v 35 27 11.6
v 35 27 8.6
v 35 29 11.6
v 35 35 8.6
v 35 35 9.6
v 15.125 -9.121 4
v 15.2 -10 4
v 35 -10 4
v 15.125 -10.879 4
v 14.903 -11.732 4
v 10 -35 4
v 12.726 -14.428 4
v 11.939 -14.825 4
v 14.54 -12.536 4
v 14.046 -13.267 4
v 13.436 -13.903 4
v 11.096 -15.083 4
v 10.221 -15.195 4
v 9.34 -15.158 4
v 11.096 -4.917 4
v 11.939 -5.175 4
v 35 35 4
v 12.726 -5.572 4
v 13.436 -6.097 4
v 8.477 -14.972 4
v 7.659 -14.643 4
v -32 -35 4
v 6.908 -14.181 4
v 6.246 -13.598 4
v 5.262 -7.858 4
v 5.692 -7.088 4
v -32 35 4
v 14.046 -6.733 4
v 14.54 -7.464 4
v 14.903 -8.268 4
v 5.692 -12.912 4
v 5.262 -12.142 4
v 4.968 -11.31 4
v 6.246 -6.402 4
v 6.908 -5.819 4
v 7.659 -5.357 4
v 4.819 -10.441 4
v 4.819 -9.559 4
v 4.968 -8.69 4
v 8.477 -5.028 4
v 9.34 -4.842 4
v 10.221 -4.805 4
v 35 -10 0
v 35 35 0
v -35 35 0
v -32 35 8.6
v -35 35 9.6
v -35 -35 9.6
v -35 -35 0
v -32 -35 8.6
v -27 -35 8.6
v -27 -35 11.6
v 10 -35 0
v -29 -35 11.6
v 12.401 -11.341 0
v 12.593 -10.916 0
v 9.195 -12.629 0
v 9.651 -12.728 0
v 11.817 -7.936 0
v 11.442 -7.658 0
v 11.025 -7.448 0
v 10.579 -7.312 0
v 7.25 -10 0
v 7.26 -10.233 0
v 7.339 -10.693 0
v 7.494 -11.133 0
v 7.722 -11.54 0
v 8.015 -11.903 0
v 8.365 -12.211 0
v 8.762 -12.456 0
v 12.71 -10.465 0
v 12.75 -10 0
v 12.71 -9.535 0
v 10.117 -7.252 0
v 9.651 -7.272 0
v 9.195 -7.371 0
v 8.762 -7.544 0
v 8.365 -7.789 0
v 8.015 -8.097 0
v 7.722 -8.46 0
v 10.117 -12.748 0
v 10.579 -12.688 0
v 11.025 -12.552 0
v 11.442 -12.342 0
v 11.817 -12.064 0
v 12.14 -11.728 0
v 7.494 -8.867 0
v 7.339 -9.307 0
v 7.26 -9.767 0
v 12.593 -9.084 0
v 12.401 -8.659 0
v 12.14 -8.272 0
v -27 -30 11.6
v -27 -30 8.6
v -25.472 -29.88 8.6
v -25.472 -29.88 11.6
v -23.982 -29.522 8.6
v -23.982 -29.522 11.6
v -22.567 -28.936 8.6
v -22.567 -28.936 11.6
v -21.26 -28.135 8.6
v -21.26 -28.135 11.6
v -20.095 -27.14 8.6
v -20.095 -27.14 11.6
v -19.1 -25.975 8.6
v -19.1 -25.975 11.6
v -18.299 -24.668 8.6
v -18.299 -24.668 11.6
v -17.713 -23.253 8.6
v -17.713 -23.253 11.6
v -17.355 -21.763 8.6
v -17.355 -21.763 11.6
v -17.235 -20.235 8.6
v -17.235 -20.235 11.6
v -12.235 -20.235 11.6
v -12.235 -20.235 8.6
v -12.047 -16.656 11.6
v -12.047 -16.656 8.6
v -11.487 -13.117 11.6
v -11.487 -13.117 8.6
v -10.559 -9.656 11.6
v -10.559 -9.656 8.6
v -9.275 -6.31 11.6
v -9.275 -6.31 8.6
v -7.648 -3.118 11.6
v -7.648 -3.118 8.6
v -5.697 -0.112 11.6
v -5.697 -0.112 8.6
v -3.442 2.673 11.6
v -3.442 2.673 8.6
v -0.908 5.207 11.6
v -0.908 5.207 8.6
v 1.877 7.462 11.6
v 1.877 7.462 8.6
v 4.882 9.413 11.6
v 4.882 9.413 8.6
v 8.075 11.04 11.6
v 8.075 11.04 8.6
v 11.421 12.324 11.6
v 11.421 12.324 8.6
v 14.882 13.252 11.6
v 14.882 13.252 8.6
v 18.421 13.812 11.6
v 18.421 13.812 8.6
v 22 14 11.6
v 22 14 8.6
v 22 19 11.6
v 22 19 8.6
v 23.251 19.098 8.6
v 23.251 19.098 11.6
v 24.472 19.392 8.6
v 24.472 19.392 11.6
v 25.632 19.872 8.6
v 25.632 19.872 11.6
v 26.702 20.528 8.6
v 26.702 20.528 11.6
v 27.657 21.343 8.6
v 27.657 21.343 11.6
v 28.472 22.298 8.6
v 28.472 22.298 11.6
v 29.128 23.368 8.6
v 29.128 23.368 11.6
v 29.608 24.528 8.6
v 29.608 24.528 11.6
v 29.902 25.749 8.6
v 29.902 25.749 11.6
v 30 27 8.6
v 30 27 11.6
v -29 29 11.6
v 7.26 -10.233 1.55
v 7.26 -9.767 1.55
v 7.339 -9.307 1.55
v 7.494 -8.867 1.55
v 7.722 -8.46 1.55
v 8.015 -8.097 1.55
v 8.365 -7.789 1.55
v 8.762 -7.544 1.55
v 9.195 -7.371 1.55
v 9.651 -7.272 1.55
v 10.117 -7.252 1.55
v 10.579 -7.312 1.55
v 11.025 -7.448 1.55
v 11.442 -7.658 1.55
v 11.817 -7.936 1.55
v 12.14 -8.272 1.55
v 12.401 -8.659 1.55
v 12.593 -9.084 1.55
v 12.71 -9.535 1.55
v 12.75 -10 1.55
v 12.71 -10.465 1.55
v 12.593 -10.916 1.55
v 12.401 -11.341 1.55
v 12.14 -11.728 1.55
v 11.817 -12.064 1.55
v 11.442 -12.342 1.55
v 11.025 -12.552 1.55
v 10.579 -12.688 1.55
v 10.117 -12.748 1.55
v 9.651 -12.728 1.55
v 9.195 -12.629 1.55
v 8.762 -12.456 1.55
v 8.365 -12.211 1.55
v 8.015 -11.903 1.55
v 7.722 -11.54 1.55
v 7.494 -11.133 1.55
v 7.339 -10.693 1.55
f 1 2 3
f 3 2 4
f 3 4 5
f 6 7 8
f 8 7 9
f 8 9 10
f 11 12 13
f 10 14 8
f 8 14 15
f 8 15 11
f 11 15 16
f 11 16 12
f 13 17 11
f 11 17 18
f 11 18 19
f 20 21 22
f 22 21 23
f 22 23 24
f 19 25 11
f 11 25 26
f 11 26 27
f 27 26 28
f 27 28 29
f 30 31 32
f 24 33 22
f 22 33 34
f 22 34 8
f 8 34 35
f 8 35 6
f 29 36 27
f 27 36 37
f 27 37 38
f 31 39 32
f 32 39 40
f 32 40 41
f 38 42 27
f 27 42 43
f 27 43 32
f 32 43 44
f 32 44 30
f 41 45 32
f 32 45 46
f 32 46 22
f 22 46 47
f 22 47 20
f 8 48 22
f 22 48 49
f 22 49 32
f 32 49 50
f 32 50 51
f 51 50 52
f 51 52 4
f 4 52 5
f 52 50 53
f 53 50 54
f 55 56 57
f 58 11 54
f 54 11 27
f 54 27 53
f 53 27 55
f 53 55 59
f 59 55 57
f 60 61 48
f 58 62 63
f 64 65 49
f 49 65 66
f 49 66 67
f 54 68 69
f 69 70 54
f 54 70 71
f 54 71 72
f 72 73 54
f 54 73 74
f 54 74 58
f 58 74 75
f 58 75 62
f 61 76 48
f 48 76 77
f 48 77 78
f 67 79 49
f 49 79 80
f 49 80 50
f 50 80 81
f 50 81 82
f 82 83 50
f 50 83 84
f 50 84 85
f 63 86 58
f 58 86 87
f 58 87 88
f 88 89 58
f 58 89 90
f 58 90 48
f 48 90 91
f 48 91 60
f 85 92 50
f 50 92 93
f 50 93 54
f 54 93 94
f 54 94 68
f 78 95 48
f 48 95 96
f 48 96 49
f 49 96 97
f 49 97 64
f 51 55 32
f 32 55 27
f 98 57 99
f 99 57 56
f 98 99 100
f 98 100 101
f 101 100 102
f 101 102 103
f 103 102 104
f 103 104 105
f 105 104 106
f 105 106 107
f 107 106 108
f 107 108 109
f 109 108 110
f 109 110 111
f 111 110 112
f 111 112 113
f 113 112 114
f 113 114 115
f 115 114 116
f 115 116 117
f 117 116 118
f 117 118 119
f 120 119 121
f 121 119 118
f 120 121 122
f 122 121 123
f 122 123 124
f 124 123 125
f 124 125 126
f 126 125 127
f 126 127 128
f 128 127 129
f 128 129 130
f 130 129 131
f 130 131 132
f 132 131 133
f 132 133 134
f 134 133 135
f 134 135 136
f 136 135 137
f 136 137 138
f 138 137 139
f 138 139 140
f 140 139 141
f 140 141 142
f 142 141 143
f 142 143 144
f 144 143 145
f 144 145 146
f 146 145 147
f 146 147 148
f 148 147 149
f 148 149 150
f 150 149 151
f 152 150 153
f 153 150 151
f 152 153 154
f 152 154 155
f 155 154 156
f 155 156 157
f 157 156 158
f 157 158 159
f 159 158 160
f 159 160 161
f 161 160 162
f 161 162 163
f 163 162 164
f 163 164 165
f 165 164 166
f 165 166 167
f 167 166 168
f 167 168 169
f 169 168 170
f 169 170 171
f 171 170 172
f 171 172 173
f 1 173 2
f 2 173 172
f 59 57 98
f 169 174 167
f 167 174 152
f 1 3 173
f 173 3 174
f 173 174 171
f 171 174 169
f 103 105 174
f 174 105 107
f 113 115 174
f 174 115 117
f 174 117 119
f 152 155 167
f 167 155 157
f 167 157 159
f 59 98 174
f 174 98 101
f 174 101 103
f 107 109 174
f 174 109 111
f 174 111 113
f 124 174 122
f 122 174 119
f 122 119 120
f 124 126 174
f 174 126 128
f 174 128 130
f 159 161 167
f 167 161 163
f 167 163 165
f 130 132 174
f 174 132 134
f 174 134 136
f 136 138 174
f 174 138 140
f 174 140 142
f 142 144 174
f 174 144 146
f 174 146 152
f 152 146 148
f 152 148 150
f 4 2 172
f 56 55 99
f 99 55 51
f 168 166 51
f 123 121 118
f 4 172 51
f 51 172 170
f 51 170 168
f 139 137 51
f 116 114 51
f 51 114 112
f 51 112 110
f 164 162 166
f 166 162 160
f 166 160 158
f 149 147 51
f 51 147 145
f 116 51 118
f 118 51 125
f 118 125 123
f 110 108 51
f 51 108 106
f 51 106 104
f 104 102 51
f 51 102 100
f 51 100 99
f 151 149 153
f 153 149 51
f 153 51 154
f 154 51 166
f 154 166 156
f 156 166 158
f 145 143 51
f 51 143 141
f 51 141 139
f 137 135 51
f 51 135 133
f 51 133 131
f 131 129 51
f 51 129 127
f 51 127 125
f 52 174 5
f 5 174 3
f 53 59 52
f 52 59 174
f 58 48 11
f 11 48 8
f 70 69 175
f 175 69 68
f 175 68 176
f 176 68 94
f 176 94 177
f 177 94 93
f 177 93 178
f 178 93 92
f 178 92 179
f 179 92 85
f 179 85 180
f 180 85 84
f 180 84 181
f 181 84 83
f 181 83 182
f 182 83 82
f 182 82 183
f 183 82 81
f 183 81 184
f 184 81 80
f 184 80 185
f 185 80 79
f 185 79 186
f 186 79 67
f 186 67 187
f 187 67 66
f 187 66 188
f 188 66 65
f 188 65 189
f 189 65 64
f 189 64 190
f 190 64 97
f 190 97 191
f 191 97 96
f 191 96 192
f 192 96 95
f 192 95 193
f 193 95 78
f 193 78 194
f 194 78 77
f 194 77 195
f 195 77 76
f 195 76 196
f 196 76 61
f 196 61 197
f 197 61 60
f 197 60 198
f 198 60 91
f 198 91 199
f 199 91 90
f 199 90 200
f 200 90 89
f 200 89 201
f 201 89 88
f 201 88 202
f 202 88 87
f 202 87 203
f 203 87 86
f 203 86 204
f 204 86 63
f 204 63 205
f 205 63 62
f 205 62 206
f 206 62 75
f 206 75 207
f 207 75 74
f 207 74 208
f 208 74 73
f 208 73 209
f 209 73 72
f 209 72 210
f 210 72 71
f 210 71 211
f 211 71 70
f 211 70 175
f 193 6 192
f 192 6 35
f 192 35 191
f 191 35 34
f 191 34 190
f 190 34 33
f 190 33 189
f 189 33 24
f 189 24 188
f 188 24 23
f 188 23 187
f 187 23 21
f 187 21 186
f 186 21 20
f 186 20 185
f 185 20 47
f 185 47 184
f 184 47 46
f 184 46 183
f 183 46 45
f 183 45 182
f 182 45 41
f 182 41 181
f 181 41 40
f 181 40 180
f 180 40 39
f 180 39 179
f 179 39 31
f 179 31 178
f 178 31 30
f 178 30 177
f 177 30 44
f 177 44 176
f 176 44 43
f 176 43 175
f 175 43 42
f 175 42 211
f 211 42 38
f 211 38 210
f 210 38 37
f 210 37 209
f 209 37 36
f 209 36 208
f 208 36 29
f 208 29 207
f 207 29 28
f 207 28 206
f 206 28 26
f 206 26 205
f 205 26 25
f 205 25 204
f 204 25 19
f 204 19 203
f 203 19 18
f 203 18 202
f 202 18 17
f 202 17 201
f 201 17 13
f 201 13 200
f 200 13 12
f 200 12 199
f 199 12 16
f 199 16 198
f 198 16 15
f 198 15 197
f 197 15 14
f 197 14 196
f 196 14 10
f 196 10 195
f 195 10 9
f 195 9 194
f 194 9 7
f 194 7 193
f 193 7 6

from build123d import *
from OCP.BRepFilletAPI import BRepFilletAPI_MakeChamfer

# Parameters (mm, degrees)
ESQUISSE1_W             = 70
ESQUISSE1_H             = 70
BOSS_EXTRU_1_DEPTH      = 4
BOSS_EXTRU_2_DEPTH      = 4.6
BOSS_EXTRU_3_DEPTH      = 3
CHANFREIN1_SIZE         = 2
CHANFREIN1_SIZE2        = 6
CHANFREIN2_SIZE         = 25
ENL_V_MAT_EXTRU_1_REACH = 78.476
ESQUISSE6_W             = 67
ESQUISSE6_H             = 4.6


with BuildPart() as part:
    # Esquisse1 → Boss.-Extru.1 (new body)
    with BuildSketch(Plane.XY):
        Rectangle(ESQUISSE1_W, ESQUISSE1_H)
    extrude(amount=BOSS_EXTRU_1_DEPTH)

    # Esquisse2 → Boss.-Extru.2 (add)
    with BuildSketch(Plane.XY.offset(4)):
        Polygon((-35, 35), (-35, -35), (-32, -35), (-32, 32), (35, 32), (35, 35), align=None)
    extrude(amount=BOSS_EXTRU_2_DEPTH)

    # Esquisse3 → Boss.-Extru.3 (add)
    with BuildSketch(Plane.XY.offset(8.6)):
        with BuildLine():
            Line((35, 35), (-35, 35))
            Line((-35, 35), (-35, -35))
            Line((-35, -35), (-27, -35))
            Line((-27, -35), (-27, -30))
            ThreePointArc((-27, -30), (-20.095113441, -27.13990234), (-17.235015781, -20.235015781))
            Line((-17.235015781, -20.235015781), (-12.235015781, -20.235015781))
            ThreePointArc((-12.235015781, -20.235015781), (-2.207811813, 3.972796032), (22, 14))
            Line((22, 14), (22, 19))
            ThreePointArc((22, 19), (27.656854249, 21.343145751), (30, 27))
            Line((30, 27), (35, 27))
            Line((35, 27), (35, 35))
        make_face()
    extrude(amount=BOSS_EXTRU_3_DEPTH)

    # Chanfrein1: one chamfer whose edges measure the first distance from different faces: ONE call of the kernel's chamfer builder (chamfer() names one face for all edges)
    chanfrein1_edges_1 = [part.edges().sort_by_distance(p)[0] for p in [
        (0, 35, 11.6),
    ]]
    chanfrein1_side_1 = [part.faces().sort_by_distance(p)[0] for p in [
        (0, 35, 5.8),
    ]]
    chanfrein1_edges_2 = [part.edges().sort_by_distance(p)[0] for p in [
        (-35, 0, 11.6),
    ]]
    chanfrein1_side_2 = [part.faces().sort_by_distance(p)[0] for p in [
        (-35, 0, 5.8),
    ]]
    chanfrein1 = BRepFilletAPI_MakeChamfer(part.part.solid().wrapped)
    for e in chanfrein1_edges_1:
        chanfrein1.Add(CHANFREIN1_SIZE, CHANFREIN1_SIZE2, e.wrapped, chanfrein1_side_1[0].wrapped)  # the first distance lies on this face
    for e in chanfrein1_edges_2:
        chanfrein1.Add(CHANFREIN1_SIZE, CHANFREIN1_SIZE2, e.wrapped, chanfrein1_side_2[0].wrapped)  # the first distance lies on this face
    add(Compound.cast(chanfrein1.Shape()), mode=Mode.REPLACE)

    # Chanfrein2
    chanfrein2_edges = [part.edges().sort_by_distance(p)[0] for p in [
        (35, -35, 2),
    ]]
    chamfer(chanfrein2_edges, length=CHANFREIN2_SIZE)

    # Esquisse4 → Fraisage pour vis à tête fraisée M51 (revolve, cut)
    with BuildSketch(Plane(origin=(10, -10, 4), x_dir=(0, -1, 0), z_dir=(1, 0, 0))):
        Polygon((0, 0), (0, 4), (2.75, 4), (2.75, 2.45), (5.2, 0), align=None)
    revolve(axis=Axis((10, -10, 10.35), (0, 0, -1)), mode=Mode.SUBTRACT)

    # Esquisse6 → Enlèv. mat.-Extru.1 (cut, up to next)
    with BuildSketch(Plane.XZ.offset(-32), mode=Mode.PRIVATE) as enl_v_mat_extru_1_sk1:
        with Locations((1.5, 6.3)):
            Rectangle(ESQUISSE6_W, ESQUISSE6_H)
    enl_v_mat_extru_1_tool1 = extrude(enl_v_mat_extru_1_sk1.sketch, amount=-ENL_V_MAT_EXTRU_1_REACH, mode=Mode.PRIVATE) & part.part
    add(enl_v_mat_extru_1_tool1.solids().sort_by_distance((1.5, 32, 6.3))[0], mode=Mode.SUBTRACT)


solid = part.part
